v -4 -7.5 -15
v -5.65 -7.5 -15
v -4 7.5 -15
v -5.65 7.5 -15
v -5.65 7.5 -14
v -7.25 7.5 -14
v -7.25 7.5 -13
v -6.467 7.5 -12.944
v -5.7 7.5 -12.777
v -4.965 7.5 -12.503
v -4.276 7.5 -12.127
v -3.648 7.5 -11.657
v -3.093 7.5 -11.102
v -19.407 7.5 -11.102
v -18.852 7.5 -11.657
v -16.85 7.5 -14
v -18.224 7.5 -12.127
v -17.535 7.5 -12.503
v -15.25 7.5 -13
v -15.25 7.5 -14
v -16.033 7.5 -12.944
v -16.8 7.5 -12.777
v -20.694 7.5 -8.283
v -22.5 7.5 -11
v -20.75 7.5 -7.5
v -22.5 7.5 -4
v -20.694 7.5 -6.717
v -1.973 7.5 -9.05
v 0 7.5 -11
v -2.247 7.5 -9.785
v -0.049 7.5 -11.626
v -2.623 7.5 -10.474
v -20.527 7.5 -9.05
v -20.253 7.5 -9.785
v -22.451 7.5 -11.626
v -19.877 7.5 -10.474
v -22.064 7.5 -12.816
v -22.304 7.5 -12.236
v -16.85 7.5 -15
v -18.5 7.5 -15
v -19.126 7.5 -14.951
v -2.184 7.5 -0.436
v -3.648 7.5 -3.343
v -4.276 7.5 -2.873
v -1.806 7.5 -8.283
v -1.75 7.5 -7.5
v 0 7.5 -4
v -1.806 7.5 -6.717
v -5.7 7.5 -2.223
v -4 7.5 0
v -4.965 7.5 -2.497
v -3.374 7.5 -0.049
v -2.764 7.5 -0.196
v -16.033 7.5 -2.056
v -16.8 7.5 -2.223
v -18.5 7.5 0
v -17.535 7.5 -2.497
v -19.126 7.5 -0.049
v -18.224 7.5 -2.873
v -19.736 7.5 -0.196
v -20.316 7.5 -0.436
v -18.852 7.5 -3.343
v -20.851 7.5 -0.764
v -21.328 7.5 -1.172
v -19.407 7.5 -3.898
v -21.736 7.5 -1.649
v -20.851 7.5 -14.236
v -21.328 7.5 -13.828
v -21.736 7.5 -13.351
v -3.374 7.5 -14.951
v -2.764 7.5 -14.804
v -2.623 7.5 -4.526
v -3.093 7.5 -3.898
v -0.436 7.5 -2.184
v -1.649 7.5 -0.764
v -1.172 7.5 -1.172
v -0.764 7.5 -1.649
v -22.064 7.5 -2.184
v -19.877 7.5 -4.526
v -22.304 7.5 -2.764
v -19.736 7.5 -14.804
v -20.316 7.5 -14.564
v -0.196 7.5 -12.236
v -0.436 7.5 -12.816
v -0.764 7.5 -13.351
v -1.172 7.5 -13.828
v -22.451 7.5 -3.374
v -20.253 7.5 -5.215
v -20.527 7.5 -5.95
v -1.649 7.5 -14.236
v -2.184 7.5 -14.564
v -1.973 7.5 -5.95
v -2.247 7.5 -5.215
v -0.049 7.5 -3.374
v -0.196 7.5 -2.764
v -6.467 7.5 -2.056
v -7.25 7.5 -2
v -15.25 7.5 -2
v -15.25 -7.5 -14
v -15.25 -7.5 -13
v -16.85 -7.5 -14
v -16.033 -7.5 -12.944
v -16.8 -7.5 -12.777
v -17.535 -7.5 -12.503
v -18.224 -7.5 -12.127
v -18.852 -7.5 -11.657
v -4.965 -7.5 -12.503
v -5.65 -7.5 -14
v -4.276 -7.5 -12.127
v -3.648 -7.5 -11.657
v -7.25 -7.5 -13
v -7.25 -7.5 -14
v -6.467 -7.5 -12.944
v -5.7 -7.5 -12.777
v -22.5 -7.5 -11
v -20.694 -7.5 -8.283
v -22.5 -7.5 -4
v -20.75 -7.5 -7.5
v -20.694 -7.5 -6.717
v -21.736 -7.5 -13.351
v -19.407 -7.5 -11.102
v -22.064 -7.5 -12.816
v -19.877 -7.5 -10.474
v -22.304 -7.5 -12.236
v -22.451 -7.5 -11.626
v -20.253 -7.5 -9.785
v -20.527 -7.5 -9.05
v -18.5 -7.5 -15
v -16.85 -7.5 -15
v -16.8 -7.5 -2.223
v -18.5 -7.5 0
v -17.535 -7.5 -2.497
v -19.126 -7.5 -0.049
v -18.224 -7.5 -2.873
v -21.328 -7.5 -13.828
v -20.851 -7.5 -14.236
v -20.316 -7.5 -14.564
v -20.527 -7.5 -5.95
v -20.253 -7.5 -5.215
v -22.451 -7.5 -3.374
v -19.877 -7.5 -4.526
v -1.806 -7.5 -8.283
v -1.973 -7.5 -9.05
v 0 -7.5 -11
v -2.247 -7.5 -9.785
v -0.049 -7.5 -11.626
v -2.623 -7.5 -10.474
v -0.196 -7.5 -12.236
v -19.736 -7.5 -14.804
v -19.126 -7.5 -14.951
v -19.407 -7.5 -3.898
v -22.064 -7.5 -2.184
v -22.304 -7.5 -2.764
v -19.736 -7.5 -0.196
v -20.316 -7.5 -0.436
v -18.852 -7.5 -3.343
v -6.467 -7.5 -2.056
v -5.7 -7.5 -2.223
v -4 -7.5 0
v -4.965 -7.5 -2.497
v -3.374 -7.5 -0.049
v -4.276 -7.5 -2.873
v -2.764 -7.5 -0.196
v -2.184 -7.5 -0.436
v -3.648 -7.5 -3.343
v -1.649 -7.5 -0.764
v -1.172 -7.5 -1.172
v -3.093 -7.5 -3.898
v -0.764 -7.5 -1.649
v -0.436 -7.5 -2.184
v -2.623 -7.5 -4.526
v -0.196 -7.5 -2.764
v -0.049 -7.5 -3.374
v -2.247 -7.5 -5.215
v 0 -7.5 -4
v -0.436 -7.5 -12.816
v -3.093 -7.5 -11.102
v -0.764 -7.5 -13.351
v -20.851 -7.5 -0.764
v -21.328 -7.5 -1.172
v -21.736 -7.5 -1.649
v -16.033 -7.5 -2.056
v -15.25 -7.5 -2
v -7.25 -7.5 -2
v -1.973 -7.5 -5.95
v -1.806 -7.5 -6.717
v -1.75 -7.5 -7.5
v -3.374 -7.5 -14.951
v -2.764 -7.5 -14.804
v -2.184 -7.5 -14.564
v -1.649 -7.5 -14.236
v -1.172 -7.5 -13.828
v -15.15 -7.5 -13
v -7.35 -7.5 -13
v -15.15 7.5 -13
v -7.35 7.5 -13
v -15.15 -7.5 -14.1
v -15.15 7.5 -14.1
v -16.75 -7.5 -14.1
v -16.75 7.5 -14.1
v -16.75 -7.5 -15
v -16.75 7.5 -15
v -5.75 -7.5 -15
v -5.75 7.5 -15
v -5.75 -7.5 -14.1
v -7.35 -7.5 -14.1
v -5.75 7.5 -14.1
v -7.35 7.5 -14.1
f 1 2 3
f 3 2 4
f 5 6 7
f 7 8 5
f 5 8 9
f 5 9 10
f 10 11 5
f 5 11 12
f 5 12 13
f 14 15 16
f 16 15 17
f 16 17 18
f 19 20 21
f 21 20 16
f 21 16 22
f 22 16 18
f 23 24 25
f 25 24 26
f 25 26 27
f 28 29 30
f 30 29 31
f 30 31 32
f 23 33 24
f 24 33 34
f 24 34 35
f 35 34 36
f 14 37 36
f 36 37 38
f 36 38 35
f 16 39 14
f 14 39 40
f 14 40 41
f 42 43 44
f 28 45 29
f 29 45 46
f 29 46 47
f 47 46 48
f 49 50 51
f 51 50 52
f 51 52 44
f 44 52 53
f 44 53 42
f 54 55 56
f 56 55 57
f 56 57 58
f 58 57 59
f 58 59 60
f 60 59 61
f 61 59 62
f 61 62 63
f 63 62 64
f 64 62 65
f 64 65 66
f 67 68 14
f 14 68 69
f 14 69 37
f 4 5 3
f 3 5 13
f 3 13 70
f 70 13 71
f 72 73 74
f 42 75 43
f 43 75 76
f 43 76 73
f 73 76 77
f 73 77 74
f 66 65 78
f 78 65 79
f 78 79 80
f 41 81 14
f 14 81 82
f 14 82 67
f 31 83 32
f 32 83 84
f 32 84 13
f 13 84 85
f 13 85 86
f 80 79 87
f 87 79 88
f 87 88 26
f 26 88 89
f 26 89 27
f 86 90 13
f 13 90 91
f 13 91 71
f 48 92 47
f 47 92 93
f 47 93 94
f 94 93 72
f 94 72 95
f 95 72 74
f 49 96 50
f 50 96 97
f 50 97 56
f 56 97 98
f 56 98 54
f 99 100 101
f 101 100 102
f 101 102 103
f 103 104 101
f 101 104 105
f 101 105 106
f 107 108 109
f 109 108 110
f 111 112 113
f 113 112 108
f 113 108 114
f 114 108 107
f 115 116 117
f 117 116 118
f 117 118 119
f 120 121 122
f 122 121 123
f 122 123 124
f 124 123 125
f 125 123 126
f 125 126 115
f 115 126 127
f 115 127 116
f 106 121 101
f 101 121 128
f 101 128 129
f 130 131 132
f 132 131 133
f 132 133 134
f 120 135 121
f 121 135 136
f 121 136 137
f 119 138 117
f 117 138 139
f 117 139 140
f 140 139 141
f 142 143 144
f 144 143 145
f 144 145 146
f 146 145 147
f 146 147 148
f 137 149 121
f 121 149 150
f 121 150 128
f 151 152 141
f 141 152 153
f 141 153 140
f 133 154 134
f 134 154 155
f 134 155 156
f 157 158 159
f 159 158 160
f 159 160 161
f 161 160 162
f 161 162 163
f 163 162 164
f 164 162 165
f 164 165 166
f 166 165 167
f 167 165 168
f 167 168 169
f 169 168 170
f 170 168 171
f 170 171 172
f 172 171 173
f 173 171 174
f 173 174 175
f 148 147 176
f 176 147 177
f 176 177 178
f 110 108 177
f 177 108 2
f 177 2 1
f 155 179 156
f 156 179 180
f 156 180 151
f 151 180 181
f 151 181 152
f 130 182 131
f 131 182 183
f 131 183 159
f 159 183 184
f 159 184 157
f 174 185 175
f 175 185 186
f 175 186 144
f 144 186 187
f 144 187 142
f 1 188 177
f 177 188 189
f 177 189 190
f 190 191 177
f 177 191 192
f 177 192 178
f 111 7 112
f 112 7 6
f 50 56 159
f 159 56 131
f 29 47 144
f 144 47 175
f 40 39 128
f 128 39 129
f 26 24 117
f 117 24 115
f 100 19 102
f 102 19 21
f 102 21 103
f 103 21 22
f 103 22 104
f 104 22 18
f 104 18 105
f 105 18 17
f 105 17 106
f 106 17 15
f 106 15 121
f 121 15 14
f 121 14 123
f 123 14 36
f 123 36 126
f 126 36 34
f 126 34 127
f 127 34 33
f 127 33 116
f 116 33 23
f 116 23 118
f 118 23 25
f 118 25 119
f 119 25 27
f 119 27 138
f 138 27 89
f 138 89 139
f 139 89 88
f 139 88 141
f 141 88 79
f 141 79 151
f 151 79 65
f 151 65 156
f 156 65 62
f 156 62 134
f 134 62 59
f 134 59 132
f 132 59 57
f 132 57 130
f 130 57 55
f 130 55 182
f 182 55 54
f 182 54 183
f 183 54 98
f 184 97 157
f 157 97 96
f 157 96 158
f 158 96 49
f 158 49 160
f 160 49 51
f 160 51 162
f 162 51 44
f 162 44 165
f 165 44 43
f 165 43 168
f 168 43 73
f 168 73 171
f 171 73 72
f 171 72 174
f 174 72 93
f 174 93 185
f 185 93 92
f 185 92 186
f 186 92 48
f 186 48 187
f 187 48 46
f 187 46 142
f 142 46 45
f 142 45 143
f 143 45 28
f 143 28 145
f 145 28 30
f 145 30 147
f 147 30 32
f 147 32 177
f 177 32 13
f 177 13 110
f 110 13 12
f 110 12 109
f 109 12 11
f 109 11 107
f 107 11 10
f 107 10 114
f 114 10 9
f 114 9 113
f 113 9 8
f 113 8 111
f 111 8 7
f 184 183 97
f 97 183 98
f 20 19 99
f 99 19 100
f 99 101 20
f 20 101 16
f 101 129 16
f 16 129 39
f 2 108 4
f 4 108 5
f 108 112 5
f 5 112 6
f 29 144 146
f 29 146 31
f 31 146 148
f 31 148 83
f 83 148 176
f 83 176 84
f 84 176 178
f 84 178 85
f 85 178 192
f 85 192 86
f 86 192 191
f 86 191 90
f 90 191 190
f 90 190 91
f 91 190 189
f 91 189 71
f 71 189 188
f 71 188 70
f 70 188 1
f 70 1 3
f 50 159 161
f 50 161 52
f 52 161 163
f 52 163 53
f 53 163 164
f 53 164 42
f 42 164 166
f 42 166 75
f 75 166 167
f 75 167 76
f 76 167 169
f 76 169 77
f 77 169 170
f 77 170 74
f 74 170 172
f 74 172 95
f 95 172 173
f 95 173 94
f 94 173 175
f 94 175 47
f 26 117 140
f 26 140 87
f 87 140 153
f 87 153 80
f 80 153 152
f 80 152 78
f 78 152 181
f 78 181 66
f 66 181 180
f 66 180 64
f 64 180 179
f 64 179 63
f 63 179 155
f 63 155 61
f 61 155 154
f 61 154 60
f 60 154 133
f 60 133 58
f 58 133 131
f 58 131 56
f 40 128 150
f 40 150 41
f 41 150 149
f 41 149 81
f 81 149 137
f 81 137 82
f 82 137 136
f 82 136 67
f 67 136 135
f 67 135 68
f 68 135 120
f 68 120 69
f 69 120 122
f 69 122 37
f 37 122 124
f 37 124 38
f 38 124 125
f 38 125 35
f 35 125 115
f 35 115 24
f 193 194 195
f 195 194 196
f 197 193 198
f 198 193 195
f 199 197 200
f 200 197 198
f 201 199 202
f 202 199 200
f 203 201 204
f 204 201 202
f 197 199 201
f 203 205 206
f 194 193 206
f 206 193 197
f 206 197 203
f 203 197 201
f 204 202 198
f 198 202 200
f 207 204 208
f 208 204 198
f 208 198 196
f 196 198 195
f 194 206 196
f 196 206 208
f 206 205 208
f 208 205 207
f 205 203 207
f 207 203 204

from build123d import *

# Parameters (mm, degrees)
SKETCH1_W           = 22.5
SKETCH1_H           = 15
BOSS_EXTRUDE1_DEPTH = 7.5
CUT_EXTRUDE1_DEPTH  = 31.923292192
CUT_EXTRUDE2_REACH  = 30.062
SKETCH3_W           = 8
SKETCH3_H           = 15
SKETCH4_W           = 1.6
SKETCH4_H           = 1
CUT_EXTRUDE3_DEPTH  = 15
BOSS_EXTRUDE2_DEPTH = 15
FILLET1_R           = 4


with BuildPart() as part:
    # Sketch1 → Boss-Extrude1 (new, symmetric)
    with BuildSketch(Plane(origin=(0, 0, 0), x_dir=(1, 0, 0), z_dir=(0, 1, 0))):
        with Locations((-11.25, 7.5)):
            Rectangle(SKETCH1_W, SKETCH1_H)
    extrude(amount=BOSS_EXTRUDE1_DEPTH, both=True)

    # Sketch2 → Cut-Extrude1 (cut, through all)
    with BuildSketch(Plane(origin=(0, 7.5, 0), x_dir=(1, 0, 0), z_dir=(0, 1, 0))):
        with BuildLine():
            Line((-15.25, 13), (-7.25, 13))
            ThreePointArc((-7.25, 13), (-1.75, 7.5), (-7.25, 2))
            Line((-7.25, 2), (-15.25, 2))
            ThreePointArc((-15.25, 2), (-20.75, 7.5), (-15.25, 13))
        make_face()
    extrude(amount=-CUT_EXTRUDE1_DEPTH, mode=Mode.SUBTRACT)

    # Sketch3 → Cut-Extrude2 (cut, up to next)
    with BuildSketch(Plane(origin=(0, 0, -15), x_dir=(-1, 0, 0), z_dir=(0, 0, -1)), mode=Mode.PRIVATE) as cut_extrude2_sk1:
        with Locations((11.25, 0)):
            Rectangle(SKETCH3_W, SKETCH3_H)
    cut_extrude2_tool1 = extrude(cut_extrude2_sk1.sketch, amount=-CUT_EXTRUDE2_REACH, mode=Mode.PRIVATE) & part.part
    add(cut_extrude2_tool1.solids().sort_by_distance((-11.25, 0, -15))[0], mode=Mode.SUBTRACT)

    # Sketch4 → Cut-Extrude3 (cut)
    with BuildSketch(Plane(origin=(0, 7.5, 0), x_dir=(1, 0, 0), z_dir=(0, 1, 0))):
        with Locations((-16.05, 14.5)):
            Rectangle(SKETCH4_W, SKETCH4_H)
    cut_extrude3 = extrude(amount=-CUT_EXTRUDE3_DEPTH, mode=Mode.SUBTRACT)

    # Mirror1: Cut-Extrude3 across plane
    add(cut_extrude3.mirror(Plane.ZY.offset(11.25)), mode=Mode.SUBTRACT)

    # Fillet1
    fillet1_edges = [part.edges().sort_by_distance(p)[0] for p in [
        (-22.5, 0, 0),
        (-22.5, 0, -15),
        (0, 0, -15),
        (0, 0, 0),
    ]]
    fillet(fillet1_edges, radius=FILLET1_R)


with BuildPart() as body_2:
    # Sketch5 → Boss-Extrude2 (new, through all)
    with BuildSketch(Plane(origin=(0, 7.5, 0), x_dir=(1, 0, 0), z_dir=(0, 1, 0))):
        Polygon((-11.25, 15), (-15.15, 15), (-16.75, 15), (-16.75, 14.1), (-15.15, 14.1), (-15.15, 13), (-11.25, 13), align=None)
    extrude(amount=-BOSS_EXTRUDE2_DEPTH)

    # Mirror3: body 2 across plane


with BuildPart() as body_2_1:
    add(body_2.part)
    add(body_2.part.mirror(Plane.ZY.offset(11.25)))


solid = Compound([part.part, body_2_1.part])
